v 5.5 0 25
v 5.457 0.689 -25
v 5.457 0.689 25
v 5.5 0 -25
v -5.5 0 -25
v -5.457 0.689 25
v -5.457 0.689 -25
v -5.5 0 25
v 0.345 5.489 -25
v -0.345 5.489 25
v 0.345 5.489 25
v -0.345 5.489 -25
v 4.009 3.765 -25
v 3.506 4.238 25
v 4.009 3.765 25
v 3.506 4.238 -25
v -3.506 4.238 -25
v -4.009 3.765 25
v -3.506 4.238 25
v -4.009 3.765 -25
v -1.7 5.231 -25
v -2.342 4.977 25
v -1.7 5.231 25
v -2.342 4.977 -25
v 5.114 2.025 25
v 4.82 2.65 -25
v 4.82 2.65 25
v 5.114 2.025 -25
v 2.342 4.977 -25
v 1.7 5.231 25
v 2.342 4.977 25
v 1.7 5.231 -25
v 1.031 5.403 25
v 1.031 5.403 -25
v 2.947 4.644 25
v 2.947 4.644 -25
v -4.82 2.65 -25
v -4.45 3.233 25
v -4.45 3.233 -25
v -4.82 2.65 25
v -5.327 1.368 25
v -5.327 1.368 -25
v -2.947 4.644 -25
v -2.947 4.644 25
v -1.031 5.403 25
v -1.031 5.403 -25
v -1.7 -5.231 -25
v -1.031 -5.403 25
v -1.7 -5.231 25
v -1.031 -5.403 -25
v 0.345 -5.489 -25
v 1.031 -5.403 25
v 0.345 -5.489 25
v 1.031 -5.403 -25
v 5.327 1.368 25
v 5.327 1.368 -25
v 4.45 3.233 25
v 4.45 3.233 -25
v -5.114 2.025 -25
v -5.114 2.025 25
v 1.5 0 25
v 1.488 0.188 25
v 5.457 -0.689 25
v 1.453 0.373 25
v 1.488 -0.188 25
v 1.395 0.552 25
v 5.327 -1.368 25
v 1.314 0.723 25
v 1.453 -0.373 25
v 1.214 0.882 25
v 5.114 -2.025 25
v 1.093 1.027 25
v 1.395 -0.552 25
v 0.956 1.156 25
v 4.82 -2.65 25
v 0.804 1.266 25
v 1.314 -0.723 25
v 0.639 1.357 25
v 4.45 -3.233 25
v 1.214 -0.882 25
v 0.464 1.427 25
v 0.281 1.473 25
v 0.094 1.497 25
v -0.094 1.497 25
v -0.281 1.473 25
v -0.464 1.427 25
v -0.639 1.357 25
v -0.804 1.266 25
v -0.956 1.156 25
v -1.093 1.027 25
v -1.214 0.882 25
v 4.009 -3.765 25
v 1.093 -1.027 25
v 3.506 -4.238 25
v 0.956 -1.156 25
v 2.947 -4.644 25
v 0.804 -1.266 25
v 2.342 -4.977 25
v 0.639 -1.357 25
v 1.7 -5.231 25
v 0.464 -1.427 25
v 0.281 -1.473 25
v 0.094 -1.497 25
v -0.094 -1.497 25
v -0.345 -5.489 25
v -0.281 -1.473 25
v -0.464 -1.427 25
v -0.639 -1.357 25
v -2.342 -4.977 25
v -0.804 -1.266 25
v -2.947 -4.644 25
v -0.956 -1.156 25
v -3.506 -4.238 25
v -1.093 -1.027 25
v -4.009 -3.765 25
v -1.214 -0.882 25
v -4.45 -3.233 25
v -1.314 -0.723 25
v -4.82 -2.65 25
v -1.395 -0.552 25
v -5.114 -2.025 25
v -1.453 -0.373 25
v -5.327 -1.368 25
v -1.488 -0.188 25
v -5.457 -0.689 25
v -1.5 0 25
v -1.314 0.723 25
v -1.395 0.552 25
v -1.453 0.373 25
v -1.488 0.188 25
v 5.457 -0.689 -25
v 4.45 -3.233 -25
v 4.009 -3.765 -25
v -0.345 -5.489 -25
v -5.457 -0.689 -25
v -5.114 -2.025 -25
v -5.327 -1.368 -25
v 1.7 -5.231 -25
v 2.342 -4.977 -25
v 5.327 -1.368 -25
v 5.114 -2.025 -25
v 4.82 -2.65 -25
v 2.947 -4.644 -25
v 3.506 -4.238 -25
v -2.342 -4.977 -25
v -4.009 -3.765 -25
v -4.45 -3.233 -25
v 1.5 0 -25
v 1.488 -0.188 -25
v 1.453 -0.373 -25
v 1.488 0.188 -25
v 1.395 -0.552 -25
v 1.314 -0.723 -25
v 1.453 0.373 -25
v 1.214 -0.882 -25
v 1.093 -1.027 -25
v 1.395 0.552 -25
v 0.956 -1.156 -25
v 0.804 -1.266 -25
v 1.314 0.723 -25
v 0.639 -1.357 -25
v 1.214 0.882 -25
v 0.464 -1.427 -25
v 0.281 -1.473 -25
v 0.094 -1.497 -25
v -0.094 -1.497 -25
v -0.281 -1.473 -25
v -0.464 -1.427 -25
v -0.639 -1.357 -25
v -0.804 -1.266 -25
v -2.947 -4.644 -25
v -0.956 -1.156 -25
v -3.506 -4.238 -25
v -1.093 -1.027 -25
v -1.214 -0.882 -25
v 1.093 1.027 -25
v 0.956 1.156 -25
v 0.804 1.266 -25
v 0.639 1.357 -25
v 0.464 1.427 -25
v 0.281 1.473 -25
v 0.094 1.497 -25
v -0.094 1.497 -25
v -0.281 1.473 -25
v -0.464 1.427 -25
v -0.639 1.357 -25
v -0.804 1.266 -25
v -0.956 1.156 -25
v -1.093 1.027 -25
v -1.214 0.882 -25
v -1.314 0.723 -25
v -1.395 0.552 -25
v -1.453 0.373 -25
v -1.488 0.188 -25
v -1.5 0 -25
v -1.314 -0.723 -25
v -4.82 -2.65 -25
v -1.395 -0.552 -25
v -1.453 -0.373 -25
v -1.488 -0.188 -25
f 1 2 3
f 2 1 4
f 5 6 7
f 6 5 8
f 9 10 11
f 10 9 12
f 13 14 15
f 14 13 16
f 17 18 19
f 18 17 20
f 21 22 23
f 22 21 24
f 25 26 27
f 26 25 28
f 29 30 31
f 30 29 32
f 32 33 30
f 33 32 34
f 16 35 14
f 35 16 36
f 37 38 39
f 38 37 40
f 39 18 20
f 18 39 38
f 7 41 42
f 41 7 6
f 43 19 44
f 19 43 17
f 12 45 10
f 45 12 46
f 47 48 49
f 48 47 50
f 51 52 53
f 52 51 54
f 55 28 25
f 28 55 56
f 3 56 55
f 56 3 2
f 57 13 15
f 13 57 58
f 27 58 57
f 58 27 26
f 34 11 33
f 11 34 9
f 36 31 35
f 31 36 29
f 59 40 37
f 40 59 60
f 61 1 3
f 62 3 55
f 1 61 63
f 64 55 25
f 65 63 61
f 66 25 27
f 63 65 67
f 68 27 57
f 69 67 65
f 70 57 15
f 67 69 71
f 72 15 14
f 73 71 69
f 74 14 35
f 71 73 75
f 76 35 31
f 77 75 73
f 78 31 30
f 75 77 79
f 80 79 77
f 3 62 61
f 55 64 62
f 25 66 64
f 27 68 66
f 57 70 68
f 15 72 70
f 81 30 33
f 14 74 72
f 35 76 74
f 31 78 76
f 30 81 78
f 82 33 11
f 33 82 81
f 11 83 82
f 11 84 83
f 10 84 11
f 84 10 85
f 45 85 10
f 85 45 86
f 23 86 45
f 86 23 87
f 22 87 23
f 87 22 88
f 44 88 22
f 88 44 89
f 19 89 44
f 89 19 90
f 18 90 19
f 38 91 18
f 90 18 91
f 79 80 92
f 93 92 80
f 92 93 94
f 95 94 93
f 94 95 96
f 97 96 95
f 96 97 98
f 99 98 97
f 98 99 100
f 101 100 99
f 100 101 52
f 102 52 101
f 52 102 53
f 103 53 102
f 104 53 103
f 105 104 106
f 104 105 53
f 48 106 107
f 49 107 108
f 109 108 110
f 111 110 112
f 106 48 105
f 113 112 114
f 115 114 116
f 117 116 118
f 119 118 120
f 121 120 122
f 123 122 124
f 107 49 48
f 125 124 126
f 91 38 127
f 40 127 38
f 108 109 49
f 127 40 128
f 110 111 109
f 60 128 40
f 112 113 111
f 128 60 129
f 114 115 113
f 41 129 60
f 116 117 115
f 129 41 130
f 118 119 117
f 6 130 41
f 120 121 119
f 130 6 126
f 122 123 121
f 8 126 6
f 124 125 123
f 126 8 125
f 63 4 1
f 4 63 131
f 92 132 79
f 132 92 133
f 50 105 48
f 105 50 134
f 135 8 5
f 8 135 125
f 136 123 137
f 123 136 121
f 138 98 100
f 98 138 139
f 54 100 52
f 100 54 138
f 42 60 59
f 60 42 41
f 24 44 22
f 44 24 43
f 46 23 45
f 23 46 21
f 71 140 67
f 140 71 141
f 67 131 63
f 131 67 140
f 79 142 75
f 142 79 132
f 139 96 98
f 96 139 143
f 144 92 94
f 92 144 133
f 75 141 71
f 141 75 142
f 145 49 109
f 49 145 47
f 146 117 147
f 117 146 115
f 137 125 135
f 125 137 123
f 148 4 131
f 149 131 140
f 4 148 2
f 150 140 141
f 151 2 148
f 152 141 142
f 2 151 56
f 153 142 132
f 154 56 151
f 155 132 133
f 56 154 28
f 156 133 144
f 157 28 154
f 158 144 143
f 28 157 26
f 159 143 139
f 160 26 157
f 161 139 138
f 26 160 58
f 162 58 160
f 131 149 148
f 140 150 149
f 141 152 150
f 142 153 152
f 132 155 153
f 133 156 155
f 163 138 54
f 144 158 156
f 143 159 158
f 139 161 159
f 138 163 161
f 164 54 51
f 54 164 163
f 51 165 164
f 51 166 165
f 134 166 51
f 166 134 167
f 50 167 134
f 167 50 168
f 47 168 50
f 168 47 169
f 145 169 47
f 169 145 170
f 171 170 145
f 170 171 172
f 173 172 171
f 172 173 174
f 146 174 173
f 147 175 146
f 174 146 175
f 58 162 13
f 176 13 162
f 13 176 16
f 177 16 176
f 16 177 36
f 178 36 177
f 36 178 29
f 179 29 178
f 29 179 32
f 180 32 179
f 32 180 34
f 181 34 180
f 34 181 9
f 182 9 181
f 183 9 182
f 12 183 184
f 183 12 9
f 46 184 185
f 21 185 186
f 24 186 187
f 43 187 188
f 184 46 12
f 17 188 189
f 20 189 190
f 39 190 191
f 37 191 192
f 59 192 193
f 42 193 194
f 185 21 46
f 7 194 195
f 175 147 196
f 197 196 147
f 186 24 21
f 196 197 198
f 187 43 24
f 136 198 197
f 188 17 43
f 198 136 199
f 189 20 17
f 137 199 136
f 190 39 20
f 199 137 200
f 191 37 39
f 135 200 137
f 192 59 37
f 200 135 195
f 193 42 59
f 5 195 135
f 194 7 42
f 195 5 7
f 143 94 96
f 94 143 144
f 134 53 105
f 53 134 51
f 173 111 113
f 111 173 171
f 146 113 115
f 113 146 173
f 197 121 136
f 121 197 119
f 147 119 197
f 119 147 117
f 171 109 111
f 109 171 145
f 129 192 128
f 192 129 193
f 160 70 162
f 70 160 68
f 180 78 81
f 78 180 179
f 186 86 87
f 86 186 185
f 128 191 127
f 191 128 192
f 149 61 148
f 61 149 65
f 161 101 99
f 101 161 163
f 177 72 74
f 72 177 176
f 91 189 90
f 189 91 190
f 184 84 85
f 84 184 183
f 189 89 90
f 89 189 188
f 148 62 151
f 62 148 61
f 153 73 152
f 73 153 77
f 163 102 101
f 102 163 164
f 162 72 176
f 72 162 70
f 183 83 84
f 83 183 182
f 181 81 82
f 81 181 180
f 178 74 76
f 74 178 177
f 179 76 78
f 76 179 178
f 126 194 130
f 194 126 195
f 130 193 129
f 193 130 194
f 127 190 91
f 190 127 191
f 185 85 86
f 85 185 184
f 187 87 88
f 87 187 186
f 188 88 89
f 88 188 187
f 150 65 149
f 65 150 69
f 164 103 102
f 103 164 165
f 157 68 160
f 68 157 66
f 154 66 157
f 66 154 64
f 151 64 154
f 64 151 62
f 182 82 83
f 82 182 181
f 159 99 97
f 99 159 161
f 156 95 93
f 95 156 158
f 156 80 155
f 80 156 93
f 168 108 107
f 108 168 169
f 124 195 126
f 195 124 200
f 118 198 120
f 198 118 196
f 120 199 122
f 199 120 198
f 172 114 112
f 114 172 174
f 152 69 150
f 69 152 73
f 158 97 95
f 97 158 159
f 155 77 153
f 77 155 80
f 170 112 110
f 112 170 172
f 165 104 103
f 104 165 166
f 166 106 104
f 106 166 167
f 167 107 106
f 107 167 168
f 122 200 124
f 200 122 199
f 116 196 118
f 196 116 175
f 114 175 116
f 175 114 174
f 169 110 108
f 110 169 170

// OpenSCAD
$fn = 50;


difference() {
	union() {
		translate(v = [0, 0, -25.0000000000]) {
			cylinder(h = 50, r = 5.5000000000);
		}
	}
	union() {
		translate(v = [0, 0, -100.0000000000]) {
			cylinder(h = 200, r = 1.5000000000);
		}
	}
}
